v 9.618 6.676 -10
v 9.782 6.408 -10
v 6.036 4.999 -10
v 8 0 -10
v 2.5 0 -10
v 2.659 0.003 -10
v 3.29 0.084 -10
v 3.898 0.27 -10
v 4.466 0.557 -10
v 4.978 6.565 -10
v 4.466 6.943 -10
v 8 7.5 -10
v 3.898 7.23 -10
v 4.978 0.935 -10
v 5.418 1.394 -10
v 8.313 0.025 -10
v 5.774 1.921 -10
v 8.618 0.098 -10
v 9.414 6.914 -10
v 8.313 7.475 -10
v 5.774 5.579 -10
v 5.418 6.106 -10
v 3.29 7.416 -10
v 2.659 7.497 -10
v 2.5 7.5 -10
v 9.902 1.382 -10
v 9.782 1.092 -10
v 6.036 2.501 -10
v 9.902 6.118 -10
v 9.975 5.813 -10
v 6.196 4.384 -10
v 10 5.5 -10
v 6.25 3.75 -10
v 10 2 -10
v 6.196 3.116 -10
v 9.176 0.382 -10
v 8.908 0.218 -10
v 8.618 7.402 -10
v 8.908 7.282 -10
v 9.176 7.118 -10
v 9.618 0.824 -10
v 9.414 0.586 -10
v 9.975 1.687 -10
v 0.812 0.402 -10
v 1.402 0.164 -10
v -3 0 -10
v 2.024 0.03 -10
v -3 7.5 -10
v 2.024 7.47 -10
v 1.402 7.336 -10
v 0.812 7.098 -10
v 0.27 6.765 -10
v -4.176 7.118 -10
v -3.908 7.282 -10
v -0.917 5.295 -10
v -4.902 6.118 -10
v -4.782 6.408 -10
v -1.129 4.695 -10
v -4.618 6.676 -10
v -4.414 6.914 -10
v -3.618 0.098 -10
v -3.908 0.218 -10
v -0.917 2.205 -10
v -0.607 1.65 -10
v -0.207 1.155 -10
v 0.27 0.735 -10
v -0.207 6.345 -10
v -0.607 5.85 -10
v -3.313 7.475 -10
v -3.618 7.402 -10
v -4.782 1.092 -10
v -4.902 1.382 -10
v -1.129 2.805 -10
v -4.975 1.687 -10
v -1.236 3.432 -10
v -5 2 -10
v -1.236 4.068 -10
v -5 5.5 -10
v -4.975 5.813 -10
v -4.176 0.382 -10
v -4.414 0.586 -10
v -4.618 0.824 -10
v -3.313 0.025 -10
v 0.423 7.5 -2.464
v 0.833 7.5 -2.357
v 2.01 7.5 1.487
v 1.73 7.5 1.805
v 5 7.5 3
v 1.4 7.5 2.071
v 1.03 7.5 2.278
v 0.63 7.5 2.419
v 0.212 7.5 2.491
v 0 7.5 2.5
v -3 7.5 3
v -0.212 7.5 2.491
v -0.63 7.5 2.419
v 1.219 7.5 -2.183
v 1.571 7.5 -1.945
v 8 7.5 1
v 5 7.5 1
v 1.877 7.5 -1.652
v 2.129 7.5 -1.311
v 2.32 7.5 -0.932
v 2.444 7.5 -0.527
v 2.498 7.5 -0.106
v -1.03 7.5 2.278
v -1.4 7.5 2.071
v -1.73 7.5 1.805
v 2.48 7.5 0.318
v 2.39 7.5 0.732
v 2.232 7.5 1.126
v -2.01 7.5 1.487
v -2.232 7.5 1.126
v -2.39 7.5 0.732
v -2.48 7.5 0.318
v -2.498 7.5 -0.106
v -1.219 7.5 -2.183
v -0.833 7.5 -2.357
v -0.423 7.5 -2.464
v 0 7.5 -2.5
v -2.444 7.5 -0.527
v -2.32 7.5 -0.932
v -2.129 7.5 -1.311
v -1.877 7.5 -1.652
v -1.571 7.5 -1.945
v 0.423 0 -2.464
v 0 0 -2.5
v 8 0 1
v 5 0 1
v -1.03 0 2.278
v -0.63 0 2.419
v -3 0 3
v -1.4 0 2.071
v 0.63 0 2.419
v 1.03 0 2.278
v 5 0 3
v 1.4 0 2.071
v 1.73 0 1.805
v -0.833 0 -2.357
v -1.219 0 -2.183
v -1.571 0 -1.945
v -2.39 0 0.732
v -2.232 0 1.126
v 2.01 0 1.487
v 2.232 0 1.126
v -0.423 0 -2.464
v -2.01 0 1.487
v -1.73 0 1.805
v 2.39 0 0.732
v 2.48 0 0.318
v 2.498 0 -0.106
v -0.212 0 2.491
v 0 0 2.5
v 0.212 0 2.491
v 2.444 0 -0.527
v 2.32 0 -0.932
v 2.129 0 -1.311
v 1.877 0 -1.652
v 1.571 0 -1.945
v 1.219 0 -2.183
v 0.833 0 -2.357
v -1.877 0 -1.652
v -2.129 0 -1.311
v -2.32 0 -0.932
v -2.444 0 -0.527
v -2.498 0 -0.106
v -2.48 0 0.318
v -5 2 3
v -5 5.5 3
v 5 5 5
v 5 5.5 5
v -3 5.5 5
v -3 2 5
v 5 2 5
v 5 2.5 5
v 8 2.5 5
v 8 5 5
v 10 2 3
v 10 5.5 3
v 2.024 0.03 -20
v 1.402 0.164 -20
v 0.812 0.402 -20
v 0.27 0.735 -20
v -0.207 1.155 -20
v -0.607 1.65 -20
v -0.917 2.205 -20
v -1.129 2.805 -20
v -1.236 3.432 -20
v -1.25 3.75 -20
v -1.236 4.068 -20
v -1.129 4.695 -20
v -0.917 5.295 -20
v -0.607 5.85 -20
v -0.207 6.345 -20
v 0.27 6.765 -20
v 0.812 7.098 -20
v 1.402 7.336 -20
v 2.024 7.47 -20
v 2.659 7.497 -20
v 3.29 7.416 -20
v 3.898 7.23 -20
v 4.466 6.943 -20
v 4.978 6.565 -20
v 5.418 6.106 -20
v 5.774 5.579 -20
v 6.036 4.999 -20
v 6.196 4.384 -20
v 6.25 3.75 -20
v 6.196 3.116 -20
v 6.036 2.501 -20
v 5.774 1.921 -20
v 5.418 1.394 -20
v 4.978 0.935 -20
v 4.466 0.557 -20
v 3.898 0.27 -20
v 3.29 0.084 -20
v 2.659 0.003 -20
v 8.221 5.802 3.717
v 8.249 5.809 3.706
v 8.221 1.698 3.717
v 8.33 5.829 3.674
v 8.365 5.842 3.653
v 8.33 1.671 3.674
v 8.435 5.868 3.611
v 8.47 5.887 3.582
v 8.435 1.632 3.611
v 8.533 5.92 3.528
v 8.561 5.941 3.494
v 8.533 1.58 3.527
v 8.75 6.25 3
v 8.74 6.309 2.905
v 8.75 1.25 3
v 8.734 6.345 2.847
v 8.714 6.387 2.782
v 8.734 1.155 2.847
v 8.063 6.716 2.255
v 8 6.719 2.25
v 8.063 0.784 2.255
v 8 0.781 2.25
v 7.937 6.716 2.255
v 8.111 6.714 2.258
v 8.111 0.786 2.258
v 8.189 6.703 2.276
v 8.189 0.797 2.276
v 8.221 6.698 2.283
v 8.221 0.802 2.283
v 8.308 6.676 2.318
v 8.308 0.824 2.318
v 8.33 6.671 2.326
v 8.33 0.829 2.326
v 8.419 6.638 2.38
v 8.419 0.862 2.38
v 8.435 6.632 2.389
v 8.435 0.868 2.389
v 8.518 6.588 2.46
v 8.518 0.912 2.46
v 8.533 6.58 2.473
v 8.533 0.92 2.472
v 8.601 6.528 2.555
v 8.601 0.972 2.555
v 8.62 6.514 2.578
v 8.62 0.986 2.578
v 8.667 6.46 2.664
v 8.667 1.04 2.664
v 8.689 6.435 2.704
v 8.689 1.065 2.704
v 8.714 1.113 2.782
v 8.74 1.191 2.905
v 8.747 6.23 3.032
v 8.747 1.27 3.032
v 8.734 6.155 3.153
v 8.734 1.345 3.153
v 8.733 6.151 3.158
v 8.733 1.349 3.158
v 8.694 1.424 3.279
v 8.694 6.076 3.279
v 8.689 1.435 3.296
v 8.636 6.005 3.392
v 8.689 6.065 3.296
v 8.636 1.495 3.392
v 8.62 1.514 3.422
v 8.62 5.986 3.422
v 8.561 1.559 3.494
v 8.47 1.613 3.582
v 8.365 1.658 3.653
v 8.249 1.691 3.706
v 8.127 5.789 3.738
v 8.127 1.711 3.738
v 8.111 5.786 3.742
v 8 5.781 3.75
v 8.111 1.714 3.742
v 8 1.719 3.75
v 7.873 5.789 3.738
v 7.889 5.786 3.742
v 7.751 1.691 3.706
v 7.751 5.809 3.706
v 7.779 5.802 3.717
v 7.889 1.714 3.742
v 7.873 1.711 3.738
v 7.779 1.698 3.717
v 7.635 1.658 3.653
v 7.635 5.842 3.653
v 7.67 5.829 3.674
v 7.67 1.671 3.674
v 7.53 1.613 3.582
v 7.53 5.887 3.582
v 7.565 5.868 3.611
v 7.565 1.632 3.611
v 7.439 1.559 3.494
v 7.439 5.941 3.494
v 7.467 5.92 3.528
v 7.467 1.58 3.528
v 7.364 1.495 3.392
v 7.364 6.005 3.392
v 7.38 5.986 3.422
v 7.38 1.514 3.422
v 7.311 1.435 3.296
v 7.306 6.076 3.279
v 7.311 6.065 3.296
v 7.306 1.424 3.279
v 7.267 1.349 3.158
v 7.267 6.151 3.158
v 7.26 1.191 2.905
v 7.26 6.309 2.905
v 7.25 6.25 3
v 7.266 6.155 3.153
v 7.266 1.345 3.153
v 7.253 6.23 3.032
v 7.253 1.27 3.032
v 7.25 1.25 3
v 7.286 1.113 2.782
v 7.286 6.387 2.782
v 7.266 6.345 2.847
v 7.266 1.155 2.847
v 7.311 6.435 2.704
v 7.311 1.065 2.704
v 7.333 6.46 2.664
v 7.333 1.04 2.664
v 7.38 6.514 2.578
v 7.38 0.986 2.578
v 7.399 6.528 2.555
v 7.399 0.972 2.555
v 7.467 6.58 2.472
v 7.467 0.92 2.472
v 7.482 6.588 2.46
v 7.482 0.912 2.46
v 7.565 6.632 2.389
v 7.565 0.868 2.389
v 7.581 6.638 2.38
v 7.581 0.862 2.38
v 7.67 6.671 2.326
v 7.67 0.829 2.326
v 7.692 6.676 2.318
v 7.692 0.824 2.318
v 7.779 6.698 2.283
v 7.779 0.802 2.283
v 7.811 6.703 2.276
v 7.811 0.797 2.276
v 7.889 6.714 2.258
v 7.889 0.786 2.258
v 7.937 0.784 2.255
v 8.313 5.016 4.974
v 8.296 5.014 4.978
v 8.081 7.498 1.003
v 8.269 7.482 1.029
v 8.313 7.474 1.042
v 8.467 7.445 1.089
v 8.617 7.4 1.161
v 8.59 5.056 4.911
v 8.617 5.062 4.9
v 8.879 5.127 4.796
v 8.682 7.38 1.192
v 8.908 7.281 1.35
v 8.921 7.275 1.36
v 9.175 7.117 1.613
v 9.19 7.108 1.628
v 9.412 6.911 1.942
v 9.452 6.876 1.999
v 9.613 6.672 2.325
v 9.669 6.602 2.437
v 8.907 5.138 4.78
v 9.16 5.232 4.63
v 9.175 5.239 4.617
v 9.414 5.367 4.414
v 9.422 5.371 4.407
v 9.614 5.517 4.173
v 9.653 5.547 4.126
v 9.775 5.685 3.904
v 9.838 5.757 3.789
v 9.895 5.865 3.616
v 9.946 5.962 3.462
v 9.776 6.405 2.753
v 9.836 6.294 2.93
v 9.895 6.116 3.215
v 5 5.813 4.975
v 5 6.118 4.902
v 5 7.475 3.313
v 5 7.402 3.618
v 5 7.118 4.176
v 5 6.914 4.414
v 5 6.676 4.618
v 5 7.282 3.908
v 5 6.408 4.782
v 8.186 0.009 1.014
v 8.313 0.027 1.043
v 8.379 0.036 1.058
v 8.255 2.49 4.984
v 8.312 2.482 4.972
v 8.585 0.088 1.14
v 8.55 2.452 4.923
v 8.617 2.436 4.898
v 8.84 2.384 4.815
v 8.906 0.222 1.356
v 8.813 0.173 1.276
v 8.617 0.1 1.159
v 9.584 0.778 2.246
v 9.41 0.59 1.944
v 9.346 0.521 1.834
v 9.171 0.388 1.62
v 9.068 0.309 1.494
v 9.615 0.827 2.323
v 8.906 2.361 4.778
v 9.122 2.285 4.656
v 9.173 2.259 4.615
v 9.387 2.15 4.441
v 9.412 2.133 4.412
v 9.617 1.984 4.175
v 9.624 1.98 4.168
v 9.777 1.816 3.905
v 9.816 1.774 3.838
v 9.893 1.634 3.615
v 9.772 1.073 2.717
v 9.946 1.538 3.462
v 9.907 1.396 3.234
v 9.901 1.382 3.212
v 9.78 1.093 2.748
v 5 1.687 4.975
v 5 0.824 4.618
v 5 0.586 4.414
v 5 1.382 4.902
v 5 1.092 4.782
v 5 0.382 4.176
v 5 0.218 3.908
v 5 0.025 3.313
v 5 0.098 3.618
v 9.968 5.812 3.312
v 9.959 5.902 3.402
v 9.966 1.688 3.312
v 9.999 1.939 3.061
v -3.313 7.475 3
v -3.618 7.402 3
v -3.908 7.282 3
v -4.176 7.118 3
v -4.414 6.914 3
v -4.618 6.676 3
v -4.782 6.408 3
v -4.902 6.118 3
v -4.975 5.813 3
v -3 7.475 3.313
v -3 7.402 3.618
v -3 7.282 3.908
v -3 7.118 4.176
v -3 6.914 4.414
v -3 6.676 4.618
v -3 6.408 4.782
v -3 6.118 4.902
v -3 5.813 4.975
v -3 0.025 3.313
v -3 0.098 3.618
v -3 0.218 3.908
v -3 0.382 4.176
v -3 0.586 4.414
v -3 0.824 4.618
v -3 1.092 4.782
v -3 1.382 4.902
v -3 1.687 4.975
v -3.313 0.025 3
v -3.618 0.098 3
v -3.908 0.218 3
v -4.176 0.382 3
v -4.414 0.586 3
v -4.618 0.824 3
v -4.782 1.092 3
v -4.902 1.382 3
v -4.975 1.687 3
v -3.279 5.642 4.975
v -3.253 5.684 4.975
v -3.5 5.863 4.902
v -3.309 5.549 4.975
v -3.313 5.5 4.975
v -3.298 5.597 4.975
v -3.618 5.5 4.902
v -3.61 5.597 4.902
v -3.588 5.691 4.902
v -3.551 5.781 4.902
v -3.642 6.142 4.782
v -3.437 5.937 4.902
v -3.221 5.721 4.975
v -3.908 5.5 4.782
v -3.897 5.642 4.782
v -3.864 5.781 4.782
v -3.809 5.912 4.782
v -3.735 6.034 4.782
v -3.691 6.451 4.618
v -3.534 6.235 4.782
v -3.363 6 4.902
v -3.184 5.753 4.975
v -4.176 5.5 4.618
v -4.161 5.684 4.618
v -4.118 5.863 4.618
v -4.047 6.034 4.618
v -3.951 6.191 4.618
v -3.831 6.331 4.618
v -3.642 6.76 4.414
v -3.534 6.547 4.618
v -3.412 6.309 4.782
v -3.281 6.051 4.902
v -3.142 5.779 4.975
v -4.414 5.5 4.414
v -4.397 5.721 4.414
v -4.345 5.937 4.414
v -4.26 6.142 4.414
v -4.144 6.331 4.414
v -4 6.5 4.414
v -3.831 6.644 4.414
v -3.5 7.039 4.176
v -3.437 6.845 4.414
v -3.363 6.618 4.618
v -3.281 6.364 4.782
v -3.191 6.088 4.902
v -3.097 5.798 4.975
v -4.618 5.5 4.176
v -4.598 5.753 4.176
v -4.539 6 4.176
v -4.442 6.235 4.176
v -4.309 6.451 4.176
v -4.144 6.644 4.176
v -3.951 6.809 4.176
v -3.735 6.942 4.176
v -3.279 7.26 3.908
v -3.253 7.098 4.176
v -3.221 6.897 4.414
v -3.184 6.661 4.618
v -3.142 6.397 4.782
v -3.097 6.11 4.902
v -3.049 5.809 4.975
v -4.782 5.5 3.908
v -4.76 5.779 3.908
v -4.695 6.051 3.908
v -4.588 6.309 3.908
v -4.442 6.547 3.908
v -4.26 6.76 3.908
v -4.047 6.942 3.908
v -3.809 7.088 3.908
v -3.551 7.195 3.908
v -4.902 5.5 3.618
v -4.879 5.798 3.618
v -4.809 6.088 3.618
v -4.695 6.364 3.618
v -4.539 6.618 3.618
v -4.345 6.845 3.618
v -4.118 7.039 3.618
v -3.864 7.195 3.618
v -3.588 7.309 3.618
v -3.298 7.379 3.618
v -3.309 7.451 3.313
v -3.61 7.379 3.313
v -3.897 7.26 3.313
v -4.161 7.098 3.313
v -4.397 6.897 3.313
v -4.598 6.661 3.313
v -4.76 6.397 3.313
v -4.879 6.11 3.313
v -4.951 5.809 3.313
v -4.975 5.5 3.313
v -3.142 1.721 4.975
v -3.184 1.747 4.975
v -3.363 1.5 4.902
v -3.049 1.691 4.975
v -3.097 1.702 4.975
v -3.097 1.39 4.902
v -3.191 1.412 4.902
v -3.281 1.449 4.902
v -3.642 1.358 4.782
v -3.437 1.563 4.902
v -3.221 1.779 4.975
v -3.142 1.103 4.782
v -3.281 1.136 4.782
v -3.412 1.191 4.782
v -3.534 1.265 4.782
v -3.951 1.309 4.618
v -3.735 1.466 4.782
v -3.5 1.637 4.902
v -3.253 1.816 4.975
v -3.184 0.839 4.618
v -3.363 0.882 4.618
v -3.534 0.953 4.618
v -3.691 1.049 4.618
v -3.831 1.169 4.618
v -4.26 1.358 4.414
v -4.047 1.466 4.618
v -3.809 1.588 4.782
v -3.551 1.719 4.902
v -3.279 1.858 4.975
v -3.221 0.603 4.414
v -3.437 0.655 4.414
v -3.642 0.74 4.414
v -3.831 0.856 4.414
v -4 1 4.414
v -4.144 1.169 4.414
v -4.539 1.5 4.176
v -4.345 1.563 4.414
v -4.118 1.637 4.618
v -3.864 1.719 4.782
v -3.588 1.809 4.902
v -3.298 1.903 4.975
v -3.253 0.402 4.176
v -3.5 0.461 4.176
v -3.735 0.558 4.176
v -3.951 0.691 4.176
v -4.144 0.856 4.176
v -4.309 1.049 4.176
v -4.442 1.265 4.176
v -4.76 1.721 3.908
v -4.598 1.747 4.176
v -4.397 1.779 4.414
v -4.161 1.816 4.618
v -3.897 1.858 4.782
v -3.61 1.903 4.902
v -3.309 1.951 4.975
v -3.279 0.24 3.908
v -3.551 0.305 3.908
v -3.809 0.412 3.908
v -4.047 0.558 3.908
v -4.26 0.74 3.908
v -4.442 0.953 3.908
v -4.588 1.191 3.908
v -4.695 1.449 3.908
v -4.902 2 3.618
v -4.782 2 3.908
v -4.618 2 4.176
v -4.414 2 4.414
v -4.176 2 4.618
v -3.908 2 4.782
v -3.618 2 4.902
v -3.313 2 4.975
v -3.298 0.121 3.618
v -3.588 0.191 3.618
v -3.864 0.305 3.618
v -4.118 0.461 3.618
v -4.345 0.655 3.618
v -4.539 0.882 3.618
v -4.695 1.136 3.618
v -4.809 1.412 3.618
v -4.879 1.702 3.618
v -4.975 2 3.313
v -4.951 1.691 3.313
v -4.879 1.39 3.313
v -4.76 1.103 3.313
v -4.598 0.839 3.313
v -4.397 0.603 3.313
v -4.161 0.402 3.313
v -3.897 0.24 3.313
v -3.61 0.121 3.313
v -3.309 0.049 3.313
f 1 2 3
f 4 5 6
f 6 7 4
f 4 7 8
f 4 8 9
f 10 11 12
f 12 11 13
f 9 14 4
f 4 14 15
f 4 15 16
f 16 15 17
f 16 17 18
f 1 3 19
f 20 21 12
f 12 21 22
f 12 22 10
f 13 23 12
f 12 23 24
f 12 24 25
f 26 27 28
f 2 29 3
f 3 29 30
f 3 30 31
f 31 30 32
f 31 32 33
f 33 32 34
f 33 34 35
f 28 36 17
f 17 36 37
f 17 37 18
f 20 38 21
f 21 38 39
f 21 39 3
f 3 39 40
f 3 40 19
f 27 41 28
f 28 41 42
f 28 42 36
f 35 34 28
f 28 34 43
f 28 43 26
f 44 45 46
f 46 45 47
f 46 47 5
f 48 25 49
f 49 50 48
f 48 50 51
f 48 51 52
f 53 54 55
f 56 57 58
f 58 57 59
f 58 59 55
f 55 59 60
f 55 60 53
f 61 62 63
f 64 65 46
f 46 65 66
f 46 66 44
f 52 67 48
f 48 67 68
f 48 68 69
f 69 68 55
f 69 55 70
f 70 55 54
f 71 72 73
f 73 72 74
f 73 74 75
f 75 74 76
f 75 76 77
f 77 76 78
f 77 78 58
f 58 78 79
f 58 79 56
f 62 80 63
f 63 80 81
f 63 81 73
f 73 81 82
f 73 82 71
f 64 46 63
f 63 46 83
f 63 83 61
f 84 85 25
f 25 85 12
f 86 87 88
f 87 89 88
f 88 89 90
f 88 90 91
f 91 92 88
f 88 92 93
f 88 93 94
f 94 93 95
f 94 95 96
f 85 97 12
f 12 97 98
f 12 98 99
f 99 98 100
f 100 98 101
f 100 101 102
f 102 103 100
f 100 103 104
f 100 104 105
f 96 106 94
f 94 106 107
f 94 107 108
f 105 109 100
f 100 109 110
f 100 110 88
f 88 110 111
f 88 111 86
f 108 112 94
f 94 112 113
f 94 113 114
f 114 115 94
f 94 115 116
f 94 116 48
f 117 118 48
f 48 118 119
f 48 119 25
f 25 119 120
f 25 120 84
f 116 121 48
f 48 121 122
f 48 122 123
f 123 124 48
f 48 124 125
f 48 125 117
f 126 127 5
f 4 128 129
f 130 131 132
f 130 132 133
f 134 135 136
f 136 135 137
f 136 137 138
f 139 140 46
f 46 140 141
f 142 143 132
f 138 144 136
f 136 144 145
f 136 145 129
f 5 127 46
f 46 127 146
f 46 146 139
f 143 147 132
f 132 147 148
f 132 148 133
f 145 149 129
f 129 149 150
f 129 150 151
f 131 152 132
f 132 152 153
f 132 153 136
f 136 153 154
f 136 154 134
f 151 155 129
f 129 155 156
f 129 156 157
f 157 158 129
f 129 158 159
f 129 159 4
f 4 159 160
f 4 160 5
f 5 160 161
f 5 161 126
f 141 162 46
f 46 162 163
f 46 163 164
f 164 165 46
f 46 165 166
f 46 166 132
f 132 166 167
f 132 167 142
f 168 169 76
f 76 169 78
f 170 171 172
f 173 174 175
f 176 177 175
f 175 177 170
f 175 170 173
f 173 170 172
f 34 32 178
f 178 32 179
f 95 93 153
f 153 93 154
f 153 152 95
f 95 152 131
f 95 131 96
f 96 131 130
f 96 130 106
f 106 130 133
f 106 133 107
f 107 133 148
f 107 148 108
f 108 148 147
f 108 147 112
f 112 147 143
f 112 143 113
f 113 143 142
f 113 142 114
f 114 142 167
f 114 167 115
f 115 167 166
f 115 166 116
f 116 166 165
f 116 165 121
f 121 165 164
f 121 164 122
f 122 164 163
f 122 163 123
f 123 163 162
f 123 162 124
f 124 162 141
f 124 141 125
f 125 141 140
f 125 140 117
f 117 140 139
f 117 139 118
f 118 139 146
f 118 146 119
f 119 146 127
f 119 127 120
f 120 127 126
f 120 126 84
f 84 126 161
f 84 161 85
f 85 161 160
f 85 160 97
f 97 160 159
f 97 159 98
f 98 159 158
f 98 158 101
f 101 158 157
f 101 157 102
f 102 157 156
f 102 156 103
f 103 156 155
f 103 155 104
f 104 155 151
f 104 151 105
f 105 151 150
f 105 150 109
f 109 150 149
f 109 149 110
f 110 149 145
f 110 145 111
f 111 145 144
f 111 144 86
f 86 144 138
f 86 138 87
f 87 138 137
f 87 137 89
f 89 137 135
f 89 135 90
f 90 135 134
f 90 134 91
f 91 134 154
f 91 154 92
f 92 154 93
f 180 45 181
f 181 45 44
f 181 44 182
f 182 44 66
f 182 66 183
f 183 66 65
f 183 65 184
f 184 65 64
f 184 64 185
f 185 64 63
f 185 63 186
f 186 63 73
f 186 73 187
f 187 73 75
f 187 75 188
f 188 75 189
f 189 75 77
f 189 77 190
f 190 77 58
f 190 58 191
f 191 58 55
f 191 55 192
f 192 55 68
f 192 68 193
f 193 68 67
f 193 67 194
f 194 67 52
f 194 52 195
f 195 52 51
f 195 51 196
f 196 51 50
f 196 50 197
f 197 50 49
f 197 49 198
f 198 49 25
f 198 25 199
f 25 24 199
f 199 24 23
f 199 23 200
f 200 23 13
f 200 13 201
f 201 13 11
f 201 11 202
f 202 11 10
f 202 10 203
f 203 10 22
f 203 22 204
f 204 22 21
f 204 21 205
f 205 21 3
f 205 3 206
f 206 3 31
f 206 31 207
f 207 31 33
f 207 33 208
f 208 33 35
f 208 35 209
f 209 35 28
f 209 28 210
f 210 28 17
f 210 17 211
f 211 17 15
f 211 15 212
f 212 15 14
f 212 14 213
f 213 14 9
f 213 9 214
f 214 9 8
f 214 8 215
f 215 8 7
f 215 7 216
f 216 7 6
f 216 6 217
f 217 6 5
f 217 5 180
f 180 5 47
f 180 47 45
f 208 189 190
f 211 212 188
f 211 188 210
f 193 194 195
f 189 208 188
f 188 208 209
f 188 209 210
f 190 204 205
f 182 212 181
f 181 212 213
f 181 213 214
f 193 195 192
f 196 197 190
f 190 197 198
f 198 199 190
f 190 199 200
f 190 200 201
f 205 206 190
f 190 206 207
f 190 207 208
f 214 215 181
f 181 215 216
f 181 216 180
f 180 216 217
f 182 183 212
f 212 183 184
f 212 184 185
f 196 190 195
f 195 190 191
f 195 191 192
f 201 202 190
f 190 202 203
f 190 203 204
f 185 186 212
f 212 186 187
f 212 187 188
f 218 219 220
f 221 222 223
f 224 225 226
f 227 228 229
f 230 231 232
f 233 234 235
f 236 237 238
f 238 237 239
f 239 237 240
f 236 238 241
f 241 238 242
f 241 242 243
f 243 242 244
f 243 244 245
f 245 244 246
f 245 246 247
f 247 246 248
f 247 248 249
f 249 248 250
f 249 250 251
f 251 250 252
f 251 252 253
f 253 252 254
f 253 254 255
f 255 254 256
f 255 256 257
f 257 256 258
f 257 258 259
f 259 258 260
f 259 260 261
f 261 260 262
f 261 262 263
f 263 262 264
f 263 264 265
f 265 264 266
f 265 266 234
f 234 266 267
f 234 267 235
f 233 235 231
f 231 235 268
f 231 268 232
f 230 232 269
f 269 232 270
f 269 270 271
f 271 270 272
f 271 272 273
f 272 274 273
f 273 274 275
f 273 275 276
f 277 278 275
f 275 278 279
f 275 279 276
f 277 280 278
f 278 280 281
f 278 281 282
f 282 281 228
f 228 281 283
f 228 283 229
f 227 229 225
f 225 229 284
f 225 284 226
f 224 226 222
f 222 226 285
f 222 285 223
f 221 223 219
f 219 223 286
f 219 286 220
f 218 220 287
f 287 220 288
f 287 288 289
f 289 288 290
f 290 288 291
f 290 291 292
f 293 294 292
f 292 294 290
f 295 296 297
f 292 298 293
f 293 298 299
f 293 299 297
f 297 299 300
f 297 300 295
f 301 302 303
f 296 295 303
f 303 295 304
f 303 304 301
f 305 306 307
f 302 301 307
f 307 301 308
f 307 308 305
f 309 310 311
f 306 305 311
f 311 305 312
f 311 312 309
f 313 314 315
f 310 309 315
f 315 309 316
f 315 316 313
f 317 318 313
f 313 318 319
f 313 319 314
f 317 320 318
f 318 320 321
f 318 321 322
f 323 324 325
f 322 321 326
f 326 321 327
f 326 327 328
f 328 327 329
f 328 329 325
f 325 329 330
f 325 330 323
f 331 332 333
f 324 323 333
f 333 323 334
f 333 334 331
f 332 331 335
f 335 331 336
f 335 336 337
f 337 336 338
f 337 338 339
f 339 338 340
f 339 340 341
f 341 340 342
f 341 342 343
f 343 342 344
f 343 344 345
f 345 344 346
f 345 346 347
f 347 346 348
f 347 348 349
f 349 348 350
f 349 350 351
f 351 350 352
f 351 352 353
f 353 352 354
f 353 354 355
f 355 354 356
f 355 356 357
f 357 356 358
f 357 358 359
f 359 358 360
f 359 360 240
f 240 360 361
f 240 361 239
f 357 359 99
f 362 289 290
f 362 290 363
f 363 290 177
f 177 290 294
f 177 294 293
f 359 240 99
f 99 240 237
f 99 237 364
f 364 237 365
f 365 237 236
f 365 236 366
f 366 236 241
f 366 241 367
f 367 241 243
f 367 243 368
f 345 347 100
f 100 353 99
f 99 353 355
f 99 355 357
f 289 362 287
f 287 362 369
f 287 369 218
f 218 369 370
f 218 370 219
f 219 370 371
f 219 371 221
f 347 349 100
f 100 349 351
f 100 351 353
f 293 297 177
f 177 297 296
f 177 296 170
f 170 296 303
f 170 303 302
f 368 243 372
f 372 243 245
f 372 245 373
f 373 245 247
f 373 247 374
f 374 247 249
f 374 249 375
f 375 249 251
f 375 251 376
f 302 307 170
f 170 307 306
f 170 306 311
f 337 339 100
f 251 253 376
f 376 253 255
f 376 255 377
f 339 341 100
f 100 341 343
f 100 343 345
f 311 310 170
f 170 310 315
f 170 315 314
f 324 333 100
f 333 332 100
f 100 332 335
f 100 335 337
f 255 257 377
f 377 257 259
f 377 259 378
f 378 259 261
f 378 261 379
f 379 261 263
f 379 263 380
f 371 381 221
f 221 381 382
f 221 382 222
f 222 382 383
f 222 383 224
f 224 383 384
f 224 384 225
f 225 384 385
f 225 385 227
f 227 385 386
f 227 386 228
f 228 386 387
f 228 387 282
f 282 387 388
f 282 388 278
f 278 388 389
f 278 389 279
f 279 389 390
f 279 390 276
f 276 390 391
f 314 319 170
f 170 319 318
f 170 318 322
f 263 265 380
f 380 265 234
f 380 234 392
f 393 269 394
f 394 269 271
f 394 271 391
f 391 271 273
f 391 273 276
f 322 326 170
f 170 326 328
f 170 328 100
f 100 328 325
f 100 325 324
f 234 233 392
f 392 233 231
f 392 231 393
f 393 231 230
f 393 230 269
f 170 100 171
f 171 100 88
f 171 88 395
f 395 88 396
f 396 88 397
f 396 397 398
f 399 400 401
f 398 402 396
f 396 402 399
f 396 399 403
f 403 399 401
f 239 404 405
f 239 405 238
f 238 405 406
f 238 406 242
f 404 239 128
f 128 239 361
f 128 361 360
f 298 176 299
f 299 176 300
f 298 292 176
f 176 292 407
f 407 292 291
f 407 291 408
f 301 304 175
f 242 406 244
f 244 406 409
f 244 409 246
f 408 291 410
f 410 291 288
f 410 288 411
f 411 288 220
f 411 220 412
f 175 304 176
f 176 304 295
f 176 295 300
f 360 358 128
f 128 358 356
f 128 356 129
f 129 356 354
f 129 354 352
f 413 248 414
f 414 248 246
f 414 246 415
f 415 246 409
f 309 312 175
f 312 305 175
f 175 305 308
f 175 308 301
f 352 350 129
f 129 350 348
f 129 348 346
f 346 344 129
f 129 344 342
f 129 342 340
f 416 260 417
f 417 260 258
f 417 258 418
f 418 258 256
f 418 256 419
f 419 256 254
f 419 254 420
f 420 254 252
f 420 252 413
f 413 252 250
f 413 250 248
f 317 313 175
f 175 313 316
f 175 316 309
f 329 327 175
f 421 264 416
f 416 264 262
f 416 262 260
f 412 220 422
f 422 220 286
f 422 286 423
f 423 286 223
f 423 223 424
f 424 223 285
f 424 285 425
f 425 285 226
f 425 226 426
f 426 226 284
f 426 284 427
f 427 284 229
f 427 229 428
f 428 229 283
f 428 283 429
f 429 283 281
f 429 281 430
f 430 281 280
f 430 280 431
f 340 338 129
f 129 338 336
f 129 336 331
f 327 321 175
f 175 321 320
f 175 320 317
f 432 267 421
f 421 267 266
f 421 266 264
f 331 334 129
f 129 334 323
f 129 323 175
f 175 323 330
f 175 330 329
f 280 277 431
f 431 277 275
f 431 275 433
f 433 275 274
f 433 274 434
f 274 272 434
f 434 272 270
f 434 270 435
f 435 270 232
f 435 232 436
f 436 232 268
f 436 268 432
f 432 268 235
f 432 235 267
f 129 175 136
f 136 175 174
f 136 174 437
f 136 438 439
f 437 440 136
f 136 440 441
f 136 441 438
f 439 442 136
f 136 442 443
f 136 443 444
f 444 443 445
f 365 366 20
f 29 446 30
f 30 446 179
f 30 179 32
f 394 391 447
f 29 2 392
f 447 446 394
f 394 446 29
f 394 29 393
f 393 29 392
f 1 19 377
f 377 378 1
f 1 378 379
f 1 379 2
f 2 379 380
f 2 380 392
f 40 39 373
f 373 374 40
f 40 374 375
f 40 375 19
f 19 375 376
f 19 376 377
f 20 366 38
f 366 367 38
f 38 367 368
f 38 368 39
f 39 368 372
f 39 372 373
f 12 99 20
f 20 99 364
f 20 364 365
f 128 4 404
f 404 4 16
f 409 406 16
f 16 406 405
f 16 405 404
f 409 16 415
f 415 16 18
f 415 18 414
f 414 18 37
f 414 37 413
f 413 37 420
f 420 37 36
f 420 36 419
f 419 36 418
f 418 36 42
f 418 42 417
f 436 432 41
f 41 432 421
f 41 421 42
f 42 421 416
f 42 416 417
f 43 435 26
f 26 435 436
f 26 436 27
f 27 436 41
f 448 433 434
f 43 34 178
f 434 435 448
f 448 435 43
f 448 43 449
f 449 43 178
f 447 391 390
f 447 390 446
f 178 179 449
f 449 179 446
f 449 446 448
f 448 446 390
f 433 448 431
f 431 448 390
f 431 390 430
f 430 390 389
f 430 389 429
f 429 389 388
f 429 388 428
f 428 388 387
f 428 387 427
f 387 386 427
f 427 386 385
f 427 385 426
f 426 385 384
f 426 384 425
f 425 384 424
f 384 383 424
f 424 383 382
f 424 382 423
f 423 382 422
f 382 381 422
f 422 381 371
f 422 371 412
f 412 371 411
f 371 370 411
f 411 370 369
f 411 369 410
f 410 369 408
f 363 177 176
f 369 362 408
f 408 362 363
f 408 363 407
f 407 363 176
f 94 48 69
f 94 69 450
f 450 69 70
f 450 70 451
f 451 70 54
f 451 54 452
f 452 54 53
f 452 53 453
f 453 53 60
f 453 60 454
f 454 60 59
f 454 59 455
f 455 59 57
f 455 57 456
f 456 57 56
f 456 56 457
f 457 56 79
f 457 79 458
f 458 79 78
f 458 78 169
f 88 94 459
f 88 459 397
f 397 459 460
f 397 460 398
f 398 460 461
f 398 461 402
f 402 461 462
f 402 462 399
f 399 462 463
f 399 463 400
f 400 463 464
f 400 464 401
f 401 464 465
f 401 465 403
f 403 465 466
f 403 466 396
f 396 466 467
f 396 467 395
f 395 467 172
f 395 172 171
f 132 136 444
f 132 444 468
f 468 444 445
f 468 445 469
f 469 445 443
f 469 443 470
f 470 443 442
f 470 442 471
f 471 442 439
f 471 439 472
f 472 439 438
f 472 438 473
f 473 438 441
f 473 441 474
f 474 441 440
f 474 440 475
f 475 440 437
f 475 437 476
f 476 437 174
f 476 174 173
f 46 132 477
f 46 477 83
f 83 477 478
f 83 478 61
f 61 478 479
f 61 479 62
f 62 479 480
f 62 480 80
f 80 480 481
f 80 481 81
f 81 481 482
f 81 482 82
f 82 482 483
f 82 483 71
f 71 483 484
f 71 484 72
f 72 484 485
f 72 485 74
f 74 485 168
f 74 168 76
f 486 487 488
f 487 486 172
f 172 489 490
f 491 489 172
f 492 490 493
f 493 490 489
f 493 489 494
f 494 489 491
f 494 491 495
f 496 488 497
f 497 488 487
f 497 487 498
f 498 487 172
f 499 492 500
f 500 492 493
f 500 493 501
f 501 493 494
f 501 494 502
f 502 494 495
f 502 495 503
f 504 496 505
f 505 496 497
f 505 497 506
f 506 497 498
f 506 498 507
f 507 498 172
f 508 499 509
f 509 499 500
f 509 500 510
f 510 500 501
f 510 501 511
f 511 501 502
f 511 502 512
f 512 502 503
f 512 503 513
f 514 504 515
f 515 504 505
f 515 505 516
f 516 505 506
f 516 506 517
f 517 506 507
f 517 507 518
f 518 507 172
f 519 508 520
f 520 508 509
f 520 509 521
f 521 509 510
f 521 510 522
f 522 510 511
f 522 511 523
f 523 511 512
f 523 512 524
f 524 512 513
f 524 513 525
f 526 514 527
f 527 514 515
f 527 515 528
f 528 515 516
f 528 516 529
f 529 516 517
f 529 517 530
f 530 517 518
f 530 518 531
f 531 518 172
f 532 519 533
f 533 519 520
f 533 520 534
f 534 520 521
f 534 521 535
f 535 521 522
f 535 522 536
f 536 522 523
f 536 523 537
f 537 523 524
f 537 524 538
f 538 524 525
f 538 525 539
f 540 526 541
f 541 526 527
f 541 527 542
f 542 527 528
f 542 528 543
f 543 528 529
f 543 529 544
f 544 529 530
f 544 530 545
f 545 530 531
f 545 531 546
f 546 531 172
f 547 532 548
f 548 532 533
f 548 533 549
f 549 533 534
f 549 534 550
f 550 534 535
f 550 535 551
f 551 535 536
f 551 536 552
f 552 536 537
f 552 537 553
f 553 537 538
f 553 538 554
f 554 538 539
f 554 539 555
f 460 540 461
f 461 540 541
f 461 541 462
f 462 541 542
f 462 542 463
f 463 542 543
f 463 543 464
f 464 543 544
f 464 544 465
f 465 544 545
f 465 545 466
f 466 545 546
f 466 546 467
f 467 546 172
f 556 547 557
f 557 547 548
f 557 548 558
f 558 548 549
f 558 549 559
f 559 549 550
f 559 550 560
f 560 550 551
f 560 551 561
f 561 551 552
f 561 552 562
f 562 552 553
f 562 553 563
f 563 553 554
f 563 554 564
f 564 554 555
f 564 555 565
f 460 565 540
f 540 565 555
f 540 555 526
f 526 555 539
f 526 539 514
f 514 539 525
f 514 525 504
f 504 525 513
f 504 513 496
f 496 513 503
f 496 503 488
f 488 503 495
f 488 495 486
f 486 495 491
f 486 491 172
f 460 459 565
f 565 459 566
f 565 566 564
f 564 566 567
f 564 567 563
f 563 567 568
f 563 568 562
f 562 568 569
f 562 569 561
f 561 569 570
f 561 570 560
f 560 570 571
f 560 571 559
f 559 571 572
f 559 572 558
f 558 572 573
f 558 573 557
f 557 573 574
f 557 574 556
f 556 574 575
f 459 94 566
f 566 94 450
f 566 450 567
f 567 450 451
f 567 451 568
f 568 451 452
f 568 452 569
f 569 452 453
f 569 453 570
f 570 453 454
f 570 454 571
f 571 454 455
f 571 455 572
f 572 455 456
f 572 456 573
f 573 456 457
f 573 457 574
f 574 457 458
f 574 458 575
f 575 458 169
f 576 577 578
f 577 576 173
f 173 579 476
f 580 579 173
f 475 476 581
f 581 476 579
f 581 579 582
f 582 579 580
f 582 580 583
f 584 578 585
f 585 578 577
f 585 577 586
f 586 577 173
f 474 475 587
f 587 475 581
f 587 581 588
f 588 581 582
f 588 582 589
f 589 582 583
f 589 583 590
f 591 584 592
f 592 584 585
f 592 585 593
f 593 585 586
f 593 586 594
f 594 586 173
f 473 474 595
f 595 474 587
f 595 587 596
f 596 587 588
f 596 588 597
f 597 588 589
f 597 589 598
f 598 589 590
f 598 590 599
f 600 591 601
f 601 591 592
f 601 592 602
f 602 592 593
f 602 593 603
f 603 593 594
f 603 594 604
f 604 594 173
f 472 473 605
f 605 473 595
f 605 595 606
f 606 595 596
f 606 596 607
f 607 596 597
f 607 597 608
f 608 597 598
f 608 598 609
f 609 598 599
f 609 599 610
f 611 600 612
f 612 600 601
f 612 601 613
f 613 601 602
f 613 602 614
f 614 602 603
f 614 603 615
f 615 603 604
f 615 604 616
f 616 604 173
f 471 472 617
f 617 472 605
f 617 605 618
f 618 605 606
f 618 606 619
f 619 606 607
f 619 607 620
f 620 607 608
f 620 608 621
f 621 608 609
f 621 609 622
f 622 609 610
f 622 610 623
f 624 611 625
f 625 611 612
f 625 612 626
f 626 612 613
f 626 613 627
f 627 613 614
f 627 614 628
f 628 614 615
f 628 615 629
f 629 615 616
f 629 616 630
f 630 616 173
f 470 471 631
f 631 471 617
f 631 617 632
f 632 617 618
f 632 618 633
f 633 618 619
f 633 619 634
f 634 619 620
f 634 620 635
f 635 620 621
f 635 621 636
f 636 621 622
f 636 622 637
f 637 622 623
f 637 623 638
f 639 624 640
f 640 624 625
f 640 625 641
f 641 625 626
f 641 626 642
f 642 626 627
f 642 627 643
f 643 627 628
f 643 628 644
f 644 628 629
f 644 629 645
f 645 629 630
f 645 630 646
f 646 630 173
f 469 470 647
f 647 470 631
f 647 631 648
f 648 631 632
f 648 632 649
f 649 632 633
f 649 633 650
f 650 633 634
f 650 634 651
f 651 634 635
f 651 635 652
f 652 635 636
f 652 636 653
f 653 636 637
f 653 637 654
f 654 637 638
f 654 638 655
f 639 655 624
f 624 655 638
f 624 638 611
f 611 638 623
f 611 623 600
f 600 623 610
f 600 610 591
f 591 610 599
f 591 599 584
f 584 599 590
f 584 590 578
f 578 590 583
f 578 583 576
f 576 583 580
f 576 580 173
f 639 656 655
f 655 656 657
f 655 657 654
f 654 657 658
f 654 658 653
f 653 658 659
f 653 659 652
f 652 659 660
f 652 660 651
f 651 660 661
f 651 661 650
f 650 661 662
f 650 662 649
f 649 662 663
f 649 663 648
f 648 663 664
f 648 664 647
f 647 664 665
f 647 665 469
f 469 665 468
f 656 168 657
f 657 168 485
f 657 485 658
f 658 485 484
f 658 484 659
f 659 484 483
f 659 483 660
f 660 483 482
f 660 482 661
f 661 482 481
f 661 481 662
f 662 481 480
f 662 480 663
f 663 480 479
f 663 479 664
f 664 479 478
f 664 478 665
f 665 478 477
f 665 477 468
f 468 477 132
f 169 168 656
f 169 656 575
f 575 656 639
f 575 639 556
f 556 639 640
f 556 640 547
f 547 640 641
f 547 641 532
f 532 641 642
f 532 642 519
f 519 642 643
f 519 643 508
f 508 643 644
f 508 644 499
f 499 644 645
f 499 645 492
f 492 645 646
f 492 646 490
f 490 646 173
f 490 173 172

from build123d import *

# Parameters (mm, degrees)
SKETCH1_W           = 15
SKETCH1_H           = 15
SKETCH1_R           = 2.5
BOSS_EXTRUDE1_DEPTH = 7.5
SKETCH2_R           = 3.75
BOSS_EXTRUDE2_DEPTH = 10
SKETCH3_R           = 0.75
CUT_EXTRUDE1_DEPTH  = 7.5
CUT_EXTRUDE2_DEPTH  = 5
FILLET1_R           = 2


with BuildPart() as part:
    # Sketch1 → Boss-Extrude1 (new body)
    with BuildSketch(Plane(origin=(0, 0, 0), x_dir=(1, 0, 0), z_dir=(0, 1, 0))):
        with Locations((2.5, 2.5)):
            Rectangle(SKETCH1_W, SKETCH1_H)
        with Locations(Location((0, 0, 0), (0, 0, 270))):
            Circle(SKETCH1_R, mode=Mode.SUBTRACT)
    extrude(amount=BOSS_EXTRUDE1_DEPTH)

    # Sketch2 → Boss-Extrude2 (add)
    with BuildSketch(Plane(origin=(0, 0, -10), x_dir=(-1, 0, 0), z_dir=(0, 0, -1))):
        with Locations(Location((-2.5, 3.75, 0), (0, 0, 270))):
            Circle(SKETCH2_R)
    extrude(amount=BOSS_EXTRUDE2_DEPTH)

    # Sketch3 → Cut-Extrude1 (cut)
    with BuildSketch(Plane(origin=(0, 7.5, 0), x_dir=(1, 0, 0), z_dir=(0, 1, 0))):
        with Locations(Location((8, -3, 0), (0, 0, 270))):
            Circle(SKETCH3_R)
    extrude(amount=-CUT_EXTRUDE1_DEPTH, mode=Mode.SUBTRACT)

    # Sketch4 → Cut-Extrude2 (cut)
    with BuildSketch(Plane(origin=(10, 0, 0), x_dir=(0, 0, -1), z_dir=(1, 0, 0))):
        Polygon((-5, 7.5), (-1, 7.5), (-5, 5), align=None)
        Polygon((-5, 0), (-1, 0), (-5, 2.5), align=None)
    extrude(amount=-CUT_EXTRUDE2_DEPTH, mode=Mode.SUBTRACT)

    # Fillet1
    # the kernel refuses this fillet: 2 mm, written as the material it takes off along each edge
    with BuildSketch(Plane(origin=(-3, 2, 3), x_dir=(-1, 0, 0), z_dir=(0, 0, 1))) as fillet1_piece_1_section:
        Polygon((0, 0), (FILLET1_R, 0), (FILLET1_R, FILLET1_R), (0, FILLET1_R), align=None)
    fillet1_piece_1 = extrude(amount=FILLET1_R, mode=Mode.PRIVATE)
    fillet1_piece_1 = fillet1_piece_1 - Plane(origin=(-3, 2, 3), x_dir=(0.7071067811865475, 0.7071067811865475, 0), z_dir=(0, 0, 1)) * Sphere(FILLET1_R, mode=Mode.PRIVATE)
    add(fillet1_piece_1, mode=Mode.SUBTRACT)
    with BuildSketch(Plane(origin=(-3, 5.5, 3), x_dir=(-1, 0, 0), z_dir=(0, 0, 1))) as fillet1_piece_2_section:
        Polygon((0, 0), (FILLET1_R, 0), (FILLET1_R, -FILLET1_R), (0, -FILLET1_R), align=None)
    fillet1_piece_2 = extrude(amount=FILLET1_R, mode=Mode.PRIVATE)
    fillet1_piece_2 = fillet1_piece_2 - Plane(origin=(-3, 5.5, 3), x_dir=(0.7071067811865475, -0.7071067811865475, 0), z_dir=(0, 0, 1)) * Sphere(FILLET1_R, mode=Mode.PRIVATE)
    add(fillet1_piece_2, mode=Mode.SUBTRACT)
    with BuildSketch(Plane(origin=(10, -2.5, 5), x_dir=(-1, 0, 0), z_dir=(0, 1, 0))) as fillet1_piece_3:
        with BuildLine():
            CenterArc((FILLET1_R, -FILLET1_R), FILLET1_R, 90, 90)
            Line((0, -FILLET1_R), (0, 0))
            Line((0, 0), (FILLET1_R, 0))
        make_face()
    extrude(amount=12.5, mode=Mode.SUBTRACT)
    with BuildSketch(Plane(origin=(-5, 2, 5), x_dir=(1, 0, 0), z_dir=(0, 1, 0))) as fillet1_piece_4:
        with BuildLine():
            CenterArc((FILLET1_R, FILLET1_R), FILLET1_R, 180, 90)
            Line((0, FILLET1_R), (0, 0))
            Line((0, 0), (FILLET1_R, 0))
        make_face()
    extrude(amount=3.5, mode=Mode.SUBTRACT)
    with BuildSketch(Plane(origin=(-5, 0, -15), x_dir=(1, 0, 0), z_dir=(0, 0, 1))) as fillet1_piece_5:
        with BuildLine():
            CenterArc((FILLET1_R, FILLET1_R), FILLET1_R, 180, 90)
            Line((0, FILLET1_R), (0, 0))
            Line((0, 0), (FILLET1_R, 0))
        make_face()
    extrude(amount=18, mode=Mode.SUBTRACT)
    with BuildSketch(Plane(origin=(-5, 7.5, -15), x_dir=(1, 0, 0), z_dir=(0, 0, 1))) as fillet1_piece_6:
        with BuildLine():
            CenterArc((FILLET1_R, -FILLET1_R), FILLET1_R, 90, 90)
            Line((0, -FILLET1_R), (0, 0))
            Line((0, 0), (FILLET1_R, 0))
        make_face()
    extrude(amount=18, mode=Mode.SUBTRACT)
    with BuildSketch(Plane(origin=(-3, 0, 5), x_dir=(0, 1, 0), z_dir=(1, 0, 0))) as fillet1_piece_7:
        with BuildLine():
            CenterArc((FILLET1_R, -FILLET1_R), FILLET1_R, 90, 90)
            Line((0, -FILLET1_R), (0, 0))
            Line((0, 0), (FILLET1_R, 0))
        make_face()
    extrude(amount=13, mode=Mode.SUBTRACT)
    with BuildSketch(Plane(origin=(10, 0, 6), x_dir=(-1, 0, 0), z_dir=(0, 0, -1)), Plane(origin=(10, 7.5, 6), x_dir=(0, -1, 0), z_dir=(0, 0, -1))) as fillet1_piece_8:
        with BuildLine():
            CenterArc((FILLET1_R, FILLET1_R), FILLET1_R, 180, 90)
            Line((0, FILLET1_R), (0, 0))
            Line((0, 0), (FILLET1_R, 0))
        make_face()
    extrude(amount=21, mode=Mode.SUBTRACT)
    with BuildSketch(Plane(origin=(-3, 7.5, 5), x_dir=(0, -1, 0), z_dir=(1, 0, 0))) as fillet1_piece_9:
        with BuildLine():
            CenterArc((FILLET1_R, FILLET1_R), FILLET1_R, 180, 90)
            Line((0, FILLET1_R), (0, 0))
            Line((0, 0), (FILLET1_R, 0))
        make_face()
    extrude(amount=13, mode=Mode.SUBTRACT)


solid = part.part
